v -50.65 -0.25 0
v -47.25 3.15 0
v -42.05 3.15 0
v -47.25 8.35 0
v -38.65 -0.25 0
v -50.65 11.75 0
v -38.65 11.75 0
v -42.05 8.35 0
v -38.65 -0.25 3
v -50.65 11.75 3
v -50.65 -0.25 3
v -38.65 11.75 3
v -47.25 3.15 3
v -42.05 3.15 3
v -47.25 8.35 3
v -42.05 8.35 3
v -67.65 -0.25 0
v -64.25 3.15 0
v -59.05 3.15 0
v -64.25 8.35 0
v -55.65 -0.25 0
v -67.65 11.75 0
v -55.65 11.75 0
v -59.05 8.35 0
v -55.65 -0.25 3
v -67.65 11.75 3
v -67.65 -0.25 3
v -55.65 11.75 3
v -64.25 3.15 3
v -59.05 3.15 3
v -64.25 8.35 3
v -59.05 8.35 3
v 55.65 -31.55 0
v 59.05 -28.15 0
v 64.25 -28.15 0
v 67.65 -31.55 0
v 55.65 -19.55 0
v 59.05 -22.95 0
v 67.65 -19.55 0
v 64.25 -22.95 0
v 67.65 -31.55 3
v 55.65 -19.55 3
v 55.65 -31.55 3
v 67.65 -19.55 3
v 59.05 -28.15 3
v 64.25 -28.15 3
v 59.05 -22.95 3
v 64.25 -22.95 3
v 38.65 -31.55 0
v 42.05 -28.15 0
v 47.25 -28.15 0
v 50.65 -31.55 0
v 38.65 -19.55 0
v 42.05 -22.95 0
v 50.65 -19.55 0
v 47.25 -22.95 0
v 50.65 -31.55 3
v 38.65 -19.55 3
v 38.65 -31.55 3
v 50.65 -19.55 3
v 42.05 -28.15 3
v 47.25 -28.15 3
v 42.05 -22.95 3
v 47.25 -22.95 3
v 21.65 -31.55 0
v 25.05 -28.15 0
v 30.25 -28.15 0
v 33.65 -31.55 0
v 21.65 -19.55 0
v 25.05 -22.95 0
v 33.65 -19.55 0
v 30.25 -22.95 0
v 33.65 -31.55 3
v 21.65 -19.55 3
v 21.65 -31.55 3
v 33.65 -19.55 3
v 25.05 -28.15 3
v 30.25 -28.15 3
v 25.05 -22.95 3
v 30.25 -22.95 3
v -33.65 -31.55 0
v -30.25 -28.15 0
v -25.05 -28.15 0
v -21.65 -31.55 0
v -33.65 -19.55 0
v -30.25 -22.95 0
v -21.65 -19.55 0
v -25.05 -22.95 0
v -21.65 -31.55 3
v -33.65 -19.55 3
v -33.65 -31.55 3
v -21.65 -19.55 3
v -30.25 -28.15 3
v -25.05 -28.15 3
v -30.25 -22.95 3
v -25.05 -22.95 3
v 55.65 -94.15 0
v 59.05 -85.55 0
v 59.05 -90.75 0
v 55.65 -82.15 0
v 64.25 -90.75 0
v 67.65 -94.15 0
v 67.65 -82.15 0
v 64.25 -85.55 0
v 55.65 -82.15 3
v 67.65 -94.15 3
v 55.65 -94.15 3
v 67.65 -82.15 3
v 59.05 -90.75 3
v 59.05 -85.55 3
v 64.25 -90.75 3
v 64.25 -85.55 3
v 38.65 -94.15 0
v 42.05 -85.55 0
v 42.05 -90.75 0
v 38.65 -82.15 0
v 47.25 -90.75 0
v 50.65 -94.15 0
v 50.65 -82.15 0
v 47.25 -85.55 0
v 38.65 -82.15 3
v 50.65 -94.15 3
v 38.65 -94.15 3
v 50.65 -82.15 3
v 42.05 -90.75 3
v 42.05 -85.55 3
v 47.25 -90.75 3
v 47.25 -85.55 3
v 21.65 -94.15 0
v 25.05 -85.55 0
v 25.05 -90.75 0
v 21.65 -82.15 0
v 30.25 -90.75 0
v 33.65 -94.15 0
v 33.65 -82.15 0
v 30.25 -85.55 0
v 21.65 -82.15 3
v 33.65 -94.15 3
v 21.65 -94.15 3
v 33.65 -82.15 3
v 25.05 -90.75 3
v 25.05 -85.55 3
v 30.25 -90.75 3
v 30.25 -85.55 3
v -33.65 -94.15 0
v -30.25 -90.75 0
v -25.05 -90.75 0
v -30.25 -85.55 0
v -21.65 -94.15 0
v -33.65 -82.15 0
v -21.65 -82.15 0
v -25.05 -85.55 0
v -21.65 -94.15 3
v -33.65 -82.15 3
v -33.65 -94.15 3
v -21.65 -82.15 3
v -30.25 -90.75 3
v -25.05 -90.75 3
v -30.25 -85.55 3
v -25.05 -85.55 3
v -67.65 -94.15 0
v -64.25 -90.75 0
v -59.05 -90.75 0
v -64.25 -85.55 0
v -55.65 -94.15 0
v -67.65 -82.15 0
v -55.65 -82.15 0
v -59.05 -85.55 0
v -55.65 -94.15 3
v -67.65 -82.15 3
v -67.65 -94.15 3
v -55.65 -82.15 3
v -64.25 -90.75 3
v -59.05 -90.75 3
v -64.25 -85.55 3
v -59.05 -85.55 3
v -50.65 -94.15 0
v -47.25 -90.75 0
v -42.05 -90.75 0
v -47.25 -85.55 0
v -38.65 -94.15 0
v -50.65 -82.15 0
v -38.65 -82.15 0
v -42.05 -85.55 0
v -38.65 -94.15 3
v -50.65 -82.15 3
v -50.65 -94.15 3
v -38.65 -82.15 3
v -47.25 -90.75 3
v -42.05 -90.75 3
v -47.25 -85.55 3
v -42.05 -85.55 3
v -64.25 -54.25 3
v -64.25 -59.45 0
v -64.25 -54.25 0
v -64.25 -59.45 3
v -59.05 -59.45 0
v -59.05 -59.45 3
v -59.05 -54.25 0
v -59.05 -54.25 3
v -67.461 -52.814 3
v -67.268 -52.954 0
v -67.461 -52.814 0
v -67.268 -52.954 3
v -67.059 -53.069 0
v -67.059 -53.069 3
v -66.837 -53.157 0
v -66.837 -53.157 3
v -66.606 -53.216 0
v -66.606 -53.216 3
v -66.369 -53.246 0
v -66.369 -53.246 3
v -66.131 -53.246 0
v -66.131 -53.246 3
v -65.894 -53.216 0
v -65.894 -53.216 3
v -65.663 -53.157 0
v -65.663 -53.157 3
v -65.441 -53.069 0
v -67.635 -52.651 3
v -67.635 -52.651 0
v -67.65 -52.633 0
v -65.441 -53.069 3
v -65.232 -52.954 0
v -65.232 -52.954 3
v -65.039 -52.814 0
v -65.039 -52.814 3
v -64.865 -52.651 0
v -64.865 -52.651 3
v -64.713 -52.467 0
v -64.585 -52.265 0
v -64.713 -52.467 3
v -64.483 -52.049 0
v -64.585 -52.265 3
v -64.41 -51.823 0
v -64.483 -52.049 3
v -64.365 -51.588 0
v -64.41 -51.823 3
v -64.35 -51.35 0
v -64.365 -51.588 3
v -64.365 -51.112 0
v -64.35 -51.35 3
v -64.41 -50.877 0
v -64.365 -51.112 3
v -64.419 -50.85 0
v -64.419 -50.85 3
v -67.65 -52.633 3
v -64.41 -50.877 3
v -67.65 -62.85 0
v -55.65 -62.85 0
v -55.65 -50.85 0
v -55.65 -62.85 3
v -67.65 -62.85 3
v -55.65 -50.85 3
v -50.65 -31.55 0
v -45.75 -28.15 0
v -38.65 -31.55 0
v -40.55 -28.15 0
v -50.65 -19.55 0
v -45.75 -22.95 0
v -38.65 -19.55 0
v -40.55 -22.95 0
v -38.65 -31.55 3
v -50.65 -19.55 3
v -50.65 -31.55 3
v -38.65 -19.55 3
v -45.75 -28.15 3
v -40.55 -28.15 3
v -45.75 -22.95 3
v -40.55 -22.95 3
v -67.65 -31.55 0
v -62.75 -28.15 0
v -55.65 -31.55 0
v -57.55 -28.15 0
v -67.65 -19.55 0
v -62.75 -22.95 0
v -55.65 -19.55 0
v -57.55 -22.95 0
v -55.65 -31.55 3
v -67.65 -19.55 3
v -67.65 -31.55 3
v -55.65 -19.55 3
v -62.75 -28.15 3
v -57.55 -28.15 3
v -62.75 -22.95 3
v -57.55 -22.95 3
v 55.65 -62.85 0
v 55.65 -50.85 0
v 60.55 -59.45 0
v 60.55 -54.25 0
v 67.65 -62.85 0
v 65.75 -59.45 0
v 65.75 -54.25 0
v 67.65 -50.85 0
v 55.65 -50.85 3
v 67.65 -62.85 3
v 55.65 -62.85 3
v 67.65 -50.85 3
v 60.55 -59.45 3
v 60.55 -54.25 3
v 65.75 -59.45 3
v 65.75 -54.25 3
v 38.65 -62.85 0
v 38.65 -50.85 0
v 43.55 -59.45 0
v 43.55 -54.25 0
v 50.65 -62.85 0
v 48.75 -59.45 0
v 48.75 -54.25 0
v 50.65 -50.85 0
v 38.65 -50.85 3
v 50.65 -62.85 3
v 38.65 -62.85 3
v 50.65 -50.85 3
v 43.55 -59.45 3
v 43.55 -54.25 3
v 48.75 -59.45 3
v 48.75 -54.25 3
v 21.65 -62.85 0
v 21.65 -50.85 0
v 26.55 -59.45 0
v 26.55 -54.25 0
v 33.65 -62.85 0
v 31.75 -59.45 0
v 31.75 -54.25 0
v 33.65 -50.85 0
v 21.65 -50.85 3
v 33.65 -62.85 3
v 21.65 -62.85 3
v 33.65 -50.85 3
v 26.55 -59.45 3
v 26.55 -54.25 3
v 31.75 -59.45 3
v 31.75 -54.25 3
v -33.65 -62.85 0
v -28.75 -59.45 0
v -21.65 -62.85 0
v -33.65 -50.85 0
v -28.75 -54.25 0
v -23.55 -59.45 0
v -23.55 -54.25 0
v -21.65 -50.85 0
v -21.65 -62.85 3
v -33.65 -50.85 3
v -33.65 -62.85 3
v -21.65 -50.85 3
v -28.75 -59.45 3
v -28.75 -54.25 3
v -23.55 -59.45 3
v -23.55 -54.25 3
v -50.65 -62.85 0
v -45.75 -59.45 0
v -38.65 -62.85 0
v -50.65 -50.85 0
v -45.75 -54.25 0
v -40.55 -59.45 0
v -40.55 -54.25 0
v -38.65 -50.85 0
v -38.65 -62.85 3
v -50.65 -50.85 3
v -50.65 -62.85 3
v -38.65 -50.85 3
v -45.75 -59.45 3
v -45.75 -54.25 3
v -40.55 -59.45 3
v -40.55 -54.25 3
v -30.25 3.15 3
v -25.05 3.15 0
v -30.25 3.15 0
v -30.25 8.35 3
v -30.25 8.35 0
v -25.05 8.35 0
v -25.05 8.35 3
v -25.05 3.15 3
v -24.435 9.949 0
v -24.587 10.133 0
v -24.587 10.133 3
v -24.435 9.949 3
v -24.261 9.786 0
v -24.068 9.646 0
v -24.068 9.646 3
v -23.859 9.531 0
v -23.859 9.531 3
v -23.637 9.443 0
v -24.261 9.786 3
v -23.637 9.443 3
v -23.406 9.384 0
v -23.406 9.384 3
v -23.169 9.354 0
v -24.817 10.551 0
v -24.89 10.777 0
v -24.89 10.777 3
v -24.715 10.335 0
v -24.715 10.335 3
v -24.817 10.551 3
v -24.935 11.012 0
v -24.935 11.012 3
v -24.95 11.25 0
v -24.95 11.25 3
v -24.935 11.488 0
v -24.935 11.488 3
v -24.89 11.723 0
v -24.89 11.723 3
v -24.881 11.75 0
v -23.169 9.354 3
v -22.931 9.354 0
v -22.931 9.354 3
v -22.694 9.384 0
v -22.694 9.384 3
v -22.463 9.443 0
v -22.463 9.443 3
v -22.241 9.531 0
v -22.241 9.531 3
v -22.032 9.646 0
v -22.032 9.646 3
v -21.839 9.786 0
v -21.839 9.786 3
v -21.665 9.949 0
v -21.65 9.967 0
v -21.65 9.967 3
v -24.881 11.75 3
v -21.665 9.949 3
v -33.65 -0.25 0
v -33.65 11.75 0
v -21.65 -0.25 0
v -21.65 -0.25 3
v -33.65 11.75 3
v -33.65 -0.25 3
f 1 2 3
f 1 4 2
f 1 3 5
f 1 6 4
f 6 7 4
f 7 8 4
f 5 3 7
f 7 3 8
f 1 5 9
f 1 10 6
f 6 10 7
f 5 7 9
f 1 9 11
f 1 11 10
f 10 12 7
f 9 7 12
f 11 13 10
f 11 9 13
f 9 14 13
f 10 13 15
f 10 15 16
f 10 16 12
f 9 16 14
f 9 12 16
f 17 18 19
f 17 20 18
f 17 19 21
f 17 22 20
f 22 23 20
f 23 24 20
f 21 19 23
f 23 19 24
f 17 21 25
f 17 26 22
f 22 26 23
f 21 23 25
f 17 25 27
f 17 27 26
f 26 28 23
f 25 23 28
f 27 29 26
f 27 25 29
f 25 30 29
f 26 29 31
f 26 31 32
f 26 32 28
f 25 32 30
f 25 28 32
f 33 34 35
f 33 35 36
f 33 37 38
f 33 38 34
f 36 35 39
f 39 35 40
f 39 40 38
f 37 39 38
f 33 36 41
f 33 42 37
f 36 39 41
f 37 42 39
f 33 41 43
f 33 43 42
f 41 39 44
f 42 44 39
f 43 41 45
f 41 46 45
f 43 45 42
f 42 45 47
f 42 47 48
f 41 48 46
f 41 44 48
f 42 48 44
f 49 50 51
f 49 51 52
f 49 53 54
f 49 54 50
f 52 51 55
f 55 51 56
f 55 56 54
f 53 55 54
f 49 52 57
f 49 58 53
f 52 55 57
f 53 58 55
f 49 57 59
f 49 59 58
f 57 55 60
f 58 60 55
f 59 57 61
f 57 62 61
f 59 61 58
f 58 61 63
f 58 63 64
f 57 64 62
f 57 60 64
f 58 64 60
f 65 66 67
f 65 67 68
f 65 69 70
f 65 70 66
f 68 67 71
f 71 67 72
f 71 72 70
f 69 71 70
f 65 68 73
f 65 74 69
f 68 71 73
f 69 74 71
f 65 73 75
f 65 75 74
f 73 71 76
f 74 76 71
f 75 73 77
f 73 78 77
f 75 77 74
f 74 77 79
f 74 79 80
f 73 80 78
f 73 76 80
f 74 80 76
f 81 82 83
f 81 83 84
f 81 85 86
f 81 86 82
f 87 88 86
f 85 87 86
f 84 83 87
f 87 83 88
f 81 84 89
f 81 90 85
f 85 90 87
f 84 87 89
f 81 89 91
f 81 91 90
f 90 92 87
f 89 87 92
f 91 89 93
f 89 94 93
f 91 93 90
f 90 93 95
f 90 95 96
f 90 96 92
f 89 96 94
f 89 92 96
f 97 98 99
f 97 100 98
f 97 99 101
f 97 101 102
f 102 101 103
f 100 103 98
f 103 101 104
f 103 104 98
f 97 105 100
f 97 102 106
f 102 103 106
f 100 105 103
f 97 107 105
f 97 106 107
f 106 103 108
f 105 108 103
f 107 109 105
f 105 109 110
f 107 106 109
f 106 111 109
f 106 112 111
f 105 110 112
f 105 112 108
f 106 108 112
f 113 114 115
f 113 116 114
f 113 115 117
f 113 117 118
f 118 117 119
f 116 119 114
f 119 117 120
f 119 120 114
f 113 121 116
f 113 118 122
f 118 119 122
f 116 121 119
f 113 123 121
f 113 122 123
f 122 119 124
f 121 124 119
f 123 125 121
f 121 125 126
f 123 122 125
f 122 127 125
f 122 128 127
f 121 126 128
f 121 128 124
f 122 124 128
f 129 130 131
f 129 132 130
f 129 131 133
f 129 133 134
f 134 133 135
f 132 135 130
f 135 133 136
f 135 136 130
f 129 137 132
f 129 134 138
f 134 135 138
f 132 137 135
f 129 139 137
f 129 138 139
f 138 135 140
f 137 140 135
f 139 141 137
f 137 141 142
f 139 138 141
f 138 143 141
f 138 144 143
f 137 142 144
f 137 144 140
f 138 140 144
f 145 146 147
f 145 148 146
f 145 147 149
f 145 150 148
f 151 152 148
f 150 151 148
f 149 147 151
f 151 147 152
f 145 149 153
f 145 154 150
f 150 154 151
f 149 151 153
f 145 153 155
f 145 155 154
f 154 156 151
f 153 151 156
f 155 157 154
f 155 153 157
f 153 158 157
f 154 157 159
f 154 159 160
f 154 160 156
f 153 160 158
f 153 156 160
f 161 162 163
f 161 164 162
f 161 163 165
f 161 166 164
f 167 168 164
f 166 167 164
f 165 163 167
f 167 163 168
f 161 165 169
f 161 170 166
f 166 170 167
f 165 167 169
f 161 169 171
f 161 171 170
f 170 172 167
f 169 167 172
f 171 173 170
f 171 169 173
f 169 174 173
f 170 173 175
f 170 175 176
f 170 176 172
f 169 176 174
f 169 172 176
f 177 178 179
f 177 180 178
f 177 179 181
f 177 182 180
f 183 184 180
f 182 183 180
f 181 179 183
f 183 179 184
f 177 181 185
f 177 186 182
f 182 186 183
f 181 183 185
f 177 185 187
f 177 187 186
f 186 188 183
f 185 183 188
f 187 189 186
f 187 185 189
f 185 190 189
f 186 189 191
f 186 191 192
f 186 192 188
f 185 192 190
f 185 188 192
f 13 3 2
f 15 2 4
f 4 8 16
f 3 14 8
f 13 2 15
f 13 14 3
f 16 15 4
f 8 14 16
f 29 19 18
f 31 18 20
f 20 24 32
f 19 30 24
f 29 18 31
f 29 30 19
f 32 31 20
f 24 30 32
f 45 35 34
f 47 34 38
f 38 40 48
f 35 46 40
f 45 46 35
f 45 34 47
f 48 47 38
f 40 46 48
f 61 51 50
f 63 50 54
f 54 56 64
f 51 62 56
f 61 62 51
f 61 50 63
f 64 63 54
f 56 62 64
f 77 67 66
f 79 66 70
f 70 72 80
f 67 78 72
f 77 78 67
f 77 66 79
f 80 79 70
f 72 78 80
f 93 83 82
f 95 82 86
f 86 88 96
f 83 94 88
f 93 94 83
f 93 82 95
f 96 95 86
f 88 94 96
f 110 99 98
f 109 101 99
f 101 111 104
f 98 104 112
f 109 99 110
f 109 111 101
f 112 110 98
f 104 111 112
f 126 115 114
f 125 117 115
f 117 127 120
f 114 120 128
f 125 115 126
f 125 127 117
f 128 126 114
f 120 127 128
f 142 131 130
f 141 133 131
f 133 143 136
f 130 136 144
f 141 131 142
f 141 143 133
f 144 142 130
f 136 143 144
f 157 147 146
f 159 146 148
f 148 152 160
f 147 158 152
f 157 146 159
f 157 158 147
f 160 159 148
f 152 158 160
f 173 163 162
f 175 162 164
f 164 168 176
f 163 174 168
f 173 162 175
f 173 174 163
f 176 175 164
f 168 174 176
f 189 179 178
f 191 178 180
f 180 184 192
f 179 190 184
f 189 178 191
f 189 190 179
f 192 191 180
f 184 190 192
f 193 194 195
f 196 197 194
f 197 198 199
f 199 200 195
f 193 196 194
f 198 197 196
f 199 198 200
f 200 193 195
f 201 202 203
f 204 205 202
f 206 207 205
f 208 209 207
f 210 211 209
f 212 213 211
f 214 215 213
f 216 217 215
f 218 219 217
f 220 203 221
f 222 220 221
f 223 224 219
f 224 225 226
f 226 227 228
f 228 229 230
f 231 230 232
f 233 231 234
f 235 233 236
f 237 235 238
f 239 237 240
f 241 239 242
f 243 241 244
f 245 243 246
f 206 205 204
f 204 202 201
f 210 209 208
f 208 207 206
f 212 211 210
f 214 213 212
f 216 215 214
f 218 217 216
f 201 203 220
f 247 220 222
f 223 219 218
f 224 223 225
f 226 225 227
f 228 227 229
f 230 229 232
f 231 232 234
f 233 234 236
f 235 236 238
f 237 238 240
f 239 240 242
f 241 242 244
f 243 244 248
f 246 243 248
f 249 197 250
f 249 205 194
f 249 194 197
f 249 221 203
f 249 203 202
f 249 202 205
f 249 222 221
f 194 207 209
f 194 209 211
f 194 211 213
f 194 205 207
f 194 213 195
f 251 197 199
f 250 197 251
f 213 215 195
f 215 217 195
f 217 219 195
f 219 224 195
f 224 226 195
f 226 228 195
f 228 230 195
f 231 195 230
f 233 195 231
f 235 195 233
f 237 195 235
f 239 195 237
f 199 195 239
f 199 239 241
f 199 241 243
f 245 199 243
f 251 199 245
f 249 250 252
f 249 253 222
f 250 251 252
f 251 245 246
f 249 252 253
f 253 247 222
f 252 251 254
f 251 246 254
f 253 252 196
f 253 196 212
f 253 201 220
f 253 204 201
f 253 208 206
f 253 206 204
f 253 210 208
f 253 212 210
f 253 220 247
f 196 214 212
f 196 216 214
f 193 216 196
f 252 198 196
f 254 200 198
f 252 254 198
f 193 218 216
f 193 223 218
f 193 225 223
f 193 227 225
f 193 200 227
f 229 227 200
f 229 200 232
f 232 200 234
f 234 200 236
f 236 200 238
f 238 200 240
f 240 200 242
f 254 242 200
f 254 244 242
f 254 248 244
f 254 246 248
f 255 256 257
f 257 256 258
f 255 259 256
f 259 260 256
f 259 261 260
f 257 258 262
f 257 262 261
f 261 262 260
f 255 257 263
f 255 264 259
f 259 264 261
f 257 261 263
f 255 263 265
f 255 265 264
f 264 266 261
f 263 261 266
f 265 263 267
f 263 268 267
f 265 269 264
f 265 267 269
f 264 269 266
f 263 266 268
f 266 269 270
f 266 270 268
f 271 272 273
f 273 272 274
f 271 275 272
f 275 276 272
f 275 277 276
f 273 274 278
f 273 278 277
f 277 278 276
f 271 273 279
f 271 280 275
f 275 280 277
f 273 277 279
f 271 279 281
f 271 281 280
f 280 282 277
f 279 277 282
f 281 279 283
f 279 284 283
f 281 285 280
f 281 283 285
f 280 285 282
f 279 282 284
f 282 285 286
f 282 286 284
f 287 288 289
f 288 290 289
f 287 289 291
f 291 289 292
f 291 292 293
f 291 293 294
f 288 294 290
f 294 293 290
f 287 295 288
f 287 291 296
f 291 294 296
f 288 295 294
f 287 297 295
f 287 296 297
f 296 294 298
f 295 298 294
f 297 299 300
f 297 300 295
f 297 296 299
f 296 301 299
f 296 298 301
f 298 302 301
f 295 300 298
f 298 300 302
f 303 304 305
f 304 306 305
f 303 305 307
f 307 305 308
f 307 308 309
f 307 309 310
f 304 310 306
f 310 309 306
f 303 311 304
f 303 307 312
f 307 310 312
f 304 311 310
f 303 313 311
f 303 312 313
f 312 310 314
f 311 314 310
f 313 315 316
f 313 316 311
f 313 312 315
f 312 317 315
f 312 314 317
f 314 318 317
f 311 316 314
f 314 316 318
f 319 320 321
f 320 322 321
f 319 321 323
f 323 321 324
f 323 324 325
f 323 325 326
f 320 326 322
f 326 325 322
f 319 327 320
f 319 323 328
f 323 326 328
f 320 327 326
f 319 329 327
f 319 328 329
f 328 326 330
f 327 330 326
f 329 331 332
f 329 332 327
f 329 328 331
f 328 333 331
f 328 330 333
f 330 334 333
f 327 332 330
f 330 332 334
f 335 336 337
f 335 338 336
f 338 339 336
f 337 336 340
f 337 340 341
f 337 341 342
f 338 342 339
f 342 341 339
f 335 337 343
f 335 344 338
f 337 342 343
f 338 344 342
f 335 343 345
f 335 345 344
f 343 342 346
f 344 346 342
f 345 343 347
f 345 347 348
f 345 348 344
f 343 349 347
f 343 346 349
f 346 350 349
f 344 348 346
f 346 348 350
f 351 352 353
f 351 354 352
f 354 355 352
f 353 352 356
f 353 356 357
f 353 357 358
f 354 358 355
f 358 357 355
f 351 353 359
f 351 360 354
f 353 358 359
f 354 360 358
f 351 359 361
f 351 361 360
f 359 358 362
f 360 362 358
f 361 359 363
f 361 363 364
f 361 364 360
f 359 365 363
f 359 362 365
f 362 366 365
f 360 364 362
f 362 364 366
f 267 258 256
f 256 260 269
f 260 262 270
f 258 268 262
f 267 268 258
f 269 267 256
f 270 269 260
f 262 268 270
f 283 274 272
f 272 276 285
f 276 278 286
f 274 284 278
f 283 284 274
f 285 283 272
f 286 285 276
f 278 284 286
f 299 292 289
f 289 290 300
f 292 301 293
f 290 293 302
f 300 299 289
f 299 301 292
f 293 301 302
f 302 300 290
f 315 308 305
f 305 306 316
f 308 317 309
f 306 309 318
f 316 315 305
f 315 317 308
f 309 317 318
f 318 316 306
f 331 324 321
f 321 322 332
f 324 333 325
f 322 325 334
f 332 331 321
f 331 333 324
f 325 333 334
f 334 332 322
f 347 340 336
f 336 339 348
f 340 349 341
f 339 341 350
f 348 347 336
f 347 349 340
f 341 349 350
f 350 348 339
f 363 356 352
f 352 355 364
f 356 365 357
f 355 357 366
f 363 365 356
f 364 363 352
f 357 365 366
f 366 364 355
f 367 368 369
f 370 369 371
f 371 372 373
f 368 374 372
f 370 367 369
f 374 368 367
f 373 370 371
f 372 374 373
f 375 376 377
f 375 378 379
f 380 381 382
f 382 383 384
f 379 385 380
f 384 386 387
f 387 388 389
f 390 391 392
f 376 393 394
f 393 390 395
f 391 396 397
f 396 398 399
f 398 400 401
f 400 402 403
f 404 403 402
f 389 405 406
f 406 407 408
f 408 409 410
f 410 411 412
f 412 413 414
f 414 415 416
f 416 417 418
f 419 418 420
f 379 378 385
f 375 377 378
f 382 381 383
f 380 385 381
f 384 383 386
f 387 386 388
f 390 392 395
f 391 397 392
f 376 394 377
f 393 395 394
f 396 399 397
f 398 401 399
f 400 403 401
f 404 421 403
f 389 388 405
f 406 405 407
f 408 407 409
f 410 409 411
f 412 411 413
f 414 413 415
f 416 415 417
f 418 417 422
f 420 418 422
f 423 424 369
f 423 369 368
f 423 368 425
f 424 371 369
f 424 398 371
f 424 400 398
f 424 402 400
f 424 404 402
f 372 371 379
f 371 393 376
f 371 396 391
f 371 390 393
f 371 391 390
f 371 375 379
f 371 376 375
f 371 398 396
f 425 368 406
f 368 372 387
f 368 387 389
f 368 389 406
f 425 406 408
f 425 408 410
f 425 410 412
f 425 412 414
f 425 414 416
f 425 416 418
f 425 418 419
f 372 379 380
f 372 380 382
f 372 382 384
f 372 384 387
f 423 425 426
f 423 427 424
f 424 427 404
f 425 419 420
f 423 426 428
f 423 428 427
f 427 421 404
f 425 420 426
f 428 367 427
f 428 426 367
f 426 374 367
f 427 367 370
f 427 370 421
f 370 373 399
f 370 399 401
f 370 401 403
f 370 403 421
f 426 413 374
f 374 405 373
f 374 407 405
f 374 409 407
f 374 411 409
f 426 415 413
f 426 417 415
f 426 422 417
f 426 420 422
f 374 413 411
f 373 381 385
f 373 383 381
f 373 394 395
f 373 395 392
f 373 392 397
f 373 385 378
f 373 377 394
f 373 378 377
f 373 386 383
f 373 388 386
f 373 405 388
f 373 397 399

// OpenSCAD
$fn = 50;

difference() {
	union() {
		translate(v = [-61.650000000000006, -88.15, 0]) {
			rotate(a = [0, 0, 0]) {
				difference() {
					union() {
						translate(v = [-6.0, -6.0, 0]) {
							cube(size = [12.0, 12.0, 3.0]);
						}
					}
					union() {
						translate(v = [-2.6, -2.6, -0.1]) {
							cube(size = [5.2, 5.2, 3.2]);
						}
					}
				}
			}
		}
		translate(v = [-44.650000000000006, -88.15, 0]) {
			rotate(a = [0, 0, 0]) {
				difference() {
					union() {
						translate(v = [-6.0, -6.0, 0]) {
							cube(size = [12.0, 12.0, 3.0]);
						}
					}
					union() {
						translate(v = [-2.6, -2.6, -0.1]) {
							cube(size = [5.2, 5.2, 3.2]);
						}
					}
				}
			}
		}
		translate(v = [-27.650000000000006, -88.15, 0]) {
			rotate(a = [0, 0, 0]) {
				difference() {
					union() {
						translate(v = [-6.0, -6.0, 0]) {
							cube(size = [12.0, 12.0, 3.0]);
						}
					}
					union() {
						translate(v = [-2.6, -2.6, -0.1]) {
							cube(size = [5.2, 5.2, 3.2]);
						}
					}
				}
			}
		}
		translate(v = [27.64999999999999, -88.15, 0]) {
			rotate(a = [0, 0, 0]) {
				difference() {
					union() {
						translate(v = [-6.0, -6.0, 0]) {
							cube(size = [12.0, 12.0, 3.0]);
						}
					}
					union() {
						translate(v = [-2.6, -2.6, -0.1]) {
							cube(size = [5.2, 5.2, 3.2]);
						}
					}
				}
			}
		}
		translate(v = [44.64999999999999, -88.15, 0]) {
			rotate(a = [0, 0, 0]) {
				difference() {
					union() {
						translate(v = [-6.0, -6.0, 0]) {
							cube(size = [12.0, 12.0, 3.0]);
						}
					}
					union() {
						translate(v = [-2.6, -2.6, -0.1]) {
							cube(size = [5.2, 5.2, 3.2]);
						}
					}
				}
			}
		}
		translate(v = [61.64999999999999, -88.15, 0]) {
			rotate(a = [0, 0, 0]) {
				difference() {
					union() {
						translate(v = [-6.0, -6.0, 0]) {
							cube(size = [12.0, 12.0, 3.0]);
						}
					}
					union() {
						translate(v = [-2.6, -2.6, -0.1]) {
							cube(size = [5.2, 5.2, 3.2]);
						}
					}
				}
			}
		}
		translate(v = [-61.650000000000006, -56.85000000000001, 0]) {
			rotate(a = [0, 0, 0]) {
				difference() {
					union() {
						translate(v = [-6.0, -6.0, 0]) {
							cube(size = [12.0, 12.0, 3.0]);
						}
					}
					union() {
						translate(v = [-2.6, -2.6, -0.1]) {
							cube(size = [5.2, 5.2, 3.2]);
						}
						translate(v = [-4.6, 5.5, -0.1]) {
							cylinder(h = 3.2, r = 1.9000000000000001);
						}
					}
				}
			}
		}
		translate(v = [-44.650000000000006, -56.85000000000001, 0]) {
			rotate(a = [0, 0, 0]) {
				difference() {
					union() {
						translate(v = [-6.0, -6.0, 0]) {
							cube(size = [12.0, 12.0, 3.0]);
						}
					}
					union() {
						translate(v = [-1.1, -2.6, -0.1]) {
							cube(size = [5.2, 5.2, 3.2]);
						}
					}
				}
			}
		}
		translate(v = [-27.650000000000006, -56.85000000000001, 0]) {
			rotate(a = [0, 0, 0]) {
				difference() {
					union() {
						translate(v = [-6.0, -6.0, 0]) {
							cube(size = [12.0, 12.0, 3.0]);
						}
					}
					union() {
						translate(v = [-1.1, -2.6, -0.1]) {
							cube(size = [5.2, 5.2, 3.2]);
						}
					}
				}
			}
		}
		translate(v = [27.64999999999999, -56.85000000000001, 0]) {
			rotate(a = [0, 0, 0]) {
				difference() {
					union() {
						translate(v = [-6.0, -6.0, 0]) {
							cube(size = [12.0, 12.0, 3.0]);
						}
					}
					union() {
						translate(v = [-1.1, -2.6, -0.1]) {
							cube(size = [5.2, 5.2, 3.2]);
						}
					}
				}
			}
		}
		translate(v = [44.64999999999999, -56.85000000000001, 0]) {
			rotate(a = [0, 0, 0]) {
				difference() {
					union() {
						translate(v = [-6.0, -6.0, 0]) {
							cube(size = [12.0, 12.0, 3.0]);
						}
					}
					union() {
						translate(v = [-1.1, -2.6, -0.1]) {
							cube(size = [5.2, 5.2, 3.2]);
						}
					}
				}
			}
		}
		translate(v = [61.64999999999999, -56.85000000000001, 0]) {
			rotate(a = [0, 0, 0]) {
				difference() {
					union() {
						translate(v = [-6.0, -6.0, 0]) {
							cube(size = [12.0, 12.0, 3.0]);
						}
					}
					union() {
						translate(v = [-1.1, -2.6, -0.1]) {
							cube(size = [5.2, 5.2, 3.2]);
						}
					}
				}
			}
		}
		translate(v = [-61.650000000000006, -25.550000000000004, 0]) {
			rotate(a = [0, 0, 0]) {
				difference() {
					union() {
						translate(v = [-6.0, -6.0, 0]) {
							cube(size = [12.0, 12.0, 3.0]);
						}
					}
					union() {
						translate(v = [-1.1, -2.6, -0.1]) {
							cube(size = [5.2, 5.2, 3.2]);
						}
					}
				}
			}
		}
		translate(v = [-44.650000000000006, -25.550000000000004, 0]) {
			rotate(a = [0, 0, 0]) {
				difference() {
					union() {
						translate(v = [-6.0, -6.0, 0]) {
							cube(size = [12.0, 12.0, 3.0]);
						}
					}
					union() {
						translate(v = [-1.1, -2.6, -0.1]) {
							cube(size = [5.2, 5.2, 3.2]);
						}
					}
				}
			}
		}
		translate(v = [-27.650000000000006, -25.550000000000004, 0]) {
			rotate(a = [0, 0, 0]) {
				difference() {
					union() {
						translate(v = [-6.0, -6.0, 0]) {
							cube(size = [12.0, 12.0, 3.0]);
						}
					}
					union() {
						translate(v = [-2.6, -2.6, -0.1]) {
							cube(size = [5.2, 5.2, 3.2]);
						}
					}
				}
			}
		}
		translate(v = [27.64999999999999, -25.550000000000004, 0]) {
			rotate(a = [0, 0, 0]) {
				difference() {
					union() {
						translate(v = [-6.0, -6.0, 0]) {
							cube(size = [12.0, 12.0, 3.0]);
						}
					}
					union() {
						translate(v = [-2.6, -2.6, -0.1]) {
							cube(size = [5.2, 5.2, 3.2]);
						}
					}
				}
			}
		}
		translate(v = [44.64999999999999, -25.550000000000004, 0]) {
			rotate(a = [0, 0, 0]) {
				difference() {
					union() {
						translate(v = [-6.0, -6.0, 0]) {
							cube(size = [12.0, 12.0, 3.0]);
						}
					}
					union() {
						translate(v = [-2.6, -2.6, -0.1]) {
							cube(size = [5.2, 5.2, 3.2]);
						}
					}
				}
			}
		}
		translate(v = [61.64999999999999, -25.550000000000004, 0]) {
			rotate(a = [0, 0, 0]) {
				difference() {
					union() {
						translate(v = [-6.0, -6.0, 0]) {
							cube(size = [12.0, 12.0, 3.0]);
						}
					}
					union() {
						translate(v = [-2.6, -2.6, -0.1]) {
							cube(size = [5.2, 5.2, 3.2]);
						}
					}
				}
			}
		}
		translate(v = [-61.650000000000006, 5.75, 0]) {
			rotate(a = [0, 0, 0]) {
				difference() {
					union() {
						translate(v = [-6.0, -6.0, 0]) {
							cube(size = [12.0, 12.0, 3.0]);
						}
					}
					union() {
						translate(v = [-2.6, -2.6, -0.1]) {
							cube(size = [5.2, 5.2, 3.2]);
						}
					}
				}
			}
		}
		translate(v = [-44.650000000000006, 5.75, 0]) {
			rotate(a = [0, 0, 0]) {
				difference() {
					union() {
						translate(v = [-6.0, -6.0, 0]) {
							cube(size = [12.0, 12.0, 3.0]);
						}
					}
					union() {
						translate(v = [-2.6, -2.6, -0.1]) {
							cube(size = [5.2, 5.2, 3.2]);
						}
					}
				}
			}
		}
		translate(v = [-27.650000000000006, 5.75, 0]) {
			rotate(a = [0, 0, 0]) {
				difference() {
					union() {
						translate(v = [-6.0, -6.0, 0]) {
							cube(size = [12.0, 12.0, 3.0]);
						}
					}
					union() {
						translate(v = [-2.6, -2.6, -0.1]) {
							cube(size = [5.2, 5.2, 3.2]);
						}
						translate(v = [4.6, 5.5, -0.1]) {
							cylinder(h = 3.2, r = 1.9000000000000001);
						}
					}
				}
			}
		}
	}
	union();
}
